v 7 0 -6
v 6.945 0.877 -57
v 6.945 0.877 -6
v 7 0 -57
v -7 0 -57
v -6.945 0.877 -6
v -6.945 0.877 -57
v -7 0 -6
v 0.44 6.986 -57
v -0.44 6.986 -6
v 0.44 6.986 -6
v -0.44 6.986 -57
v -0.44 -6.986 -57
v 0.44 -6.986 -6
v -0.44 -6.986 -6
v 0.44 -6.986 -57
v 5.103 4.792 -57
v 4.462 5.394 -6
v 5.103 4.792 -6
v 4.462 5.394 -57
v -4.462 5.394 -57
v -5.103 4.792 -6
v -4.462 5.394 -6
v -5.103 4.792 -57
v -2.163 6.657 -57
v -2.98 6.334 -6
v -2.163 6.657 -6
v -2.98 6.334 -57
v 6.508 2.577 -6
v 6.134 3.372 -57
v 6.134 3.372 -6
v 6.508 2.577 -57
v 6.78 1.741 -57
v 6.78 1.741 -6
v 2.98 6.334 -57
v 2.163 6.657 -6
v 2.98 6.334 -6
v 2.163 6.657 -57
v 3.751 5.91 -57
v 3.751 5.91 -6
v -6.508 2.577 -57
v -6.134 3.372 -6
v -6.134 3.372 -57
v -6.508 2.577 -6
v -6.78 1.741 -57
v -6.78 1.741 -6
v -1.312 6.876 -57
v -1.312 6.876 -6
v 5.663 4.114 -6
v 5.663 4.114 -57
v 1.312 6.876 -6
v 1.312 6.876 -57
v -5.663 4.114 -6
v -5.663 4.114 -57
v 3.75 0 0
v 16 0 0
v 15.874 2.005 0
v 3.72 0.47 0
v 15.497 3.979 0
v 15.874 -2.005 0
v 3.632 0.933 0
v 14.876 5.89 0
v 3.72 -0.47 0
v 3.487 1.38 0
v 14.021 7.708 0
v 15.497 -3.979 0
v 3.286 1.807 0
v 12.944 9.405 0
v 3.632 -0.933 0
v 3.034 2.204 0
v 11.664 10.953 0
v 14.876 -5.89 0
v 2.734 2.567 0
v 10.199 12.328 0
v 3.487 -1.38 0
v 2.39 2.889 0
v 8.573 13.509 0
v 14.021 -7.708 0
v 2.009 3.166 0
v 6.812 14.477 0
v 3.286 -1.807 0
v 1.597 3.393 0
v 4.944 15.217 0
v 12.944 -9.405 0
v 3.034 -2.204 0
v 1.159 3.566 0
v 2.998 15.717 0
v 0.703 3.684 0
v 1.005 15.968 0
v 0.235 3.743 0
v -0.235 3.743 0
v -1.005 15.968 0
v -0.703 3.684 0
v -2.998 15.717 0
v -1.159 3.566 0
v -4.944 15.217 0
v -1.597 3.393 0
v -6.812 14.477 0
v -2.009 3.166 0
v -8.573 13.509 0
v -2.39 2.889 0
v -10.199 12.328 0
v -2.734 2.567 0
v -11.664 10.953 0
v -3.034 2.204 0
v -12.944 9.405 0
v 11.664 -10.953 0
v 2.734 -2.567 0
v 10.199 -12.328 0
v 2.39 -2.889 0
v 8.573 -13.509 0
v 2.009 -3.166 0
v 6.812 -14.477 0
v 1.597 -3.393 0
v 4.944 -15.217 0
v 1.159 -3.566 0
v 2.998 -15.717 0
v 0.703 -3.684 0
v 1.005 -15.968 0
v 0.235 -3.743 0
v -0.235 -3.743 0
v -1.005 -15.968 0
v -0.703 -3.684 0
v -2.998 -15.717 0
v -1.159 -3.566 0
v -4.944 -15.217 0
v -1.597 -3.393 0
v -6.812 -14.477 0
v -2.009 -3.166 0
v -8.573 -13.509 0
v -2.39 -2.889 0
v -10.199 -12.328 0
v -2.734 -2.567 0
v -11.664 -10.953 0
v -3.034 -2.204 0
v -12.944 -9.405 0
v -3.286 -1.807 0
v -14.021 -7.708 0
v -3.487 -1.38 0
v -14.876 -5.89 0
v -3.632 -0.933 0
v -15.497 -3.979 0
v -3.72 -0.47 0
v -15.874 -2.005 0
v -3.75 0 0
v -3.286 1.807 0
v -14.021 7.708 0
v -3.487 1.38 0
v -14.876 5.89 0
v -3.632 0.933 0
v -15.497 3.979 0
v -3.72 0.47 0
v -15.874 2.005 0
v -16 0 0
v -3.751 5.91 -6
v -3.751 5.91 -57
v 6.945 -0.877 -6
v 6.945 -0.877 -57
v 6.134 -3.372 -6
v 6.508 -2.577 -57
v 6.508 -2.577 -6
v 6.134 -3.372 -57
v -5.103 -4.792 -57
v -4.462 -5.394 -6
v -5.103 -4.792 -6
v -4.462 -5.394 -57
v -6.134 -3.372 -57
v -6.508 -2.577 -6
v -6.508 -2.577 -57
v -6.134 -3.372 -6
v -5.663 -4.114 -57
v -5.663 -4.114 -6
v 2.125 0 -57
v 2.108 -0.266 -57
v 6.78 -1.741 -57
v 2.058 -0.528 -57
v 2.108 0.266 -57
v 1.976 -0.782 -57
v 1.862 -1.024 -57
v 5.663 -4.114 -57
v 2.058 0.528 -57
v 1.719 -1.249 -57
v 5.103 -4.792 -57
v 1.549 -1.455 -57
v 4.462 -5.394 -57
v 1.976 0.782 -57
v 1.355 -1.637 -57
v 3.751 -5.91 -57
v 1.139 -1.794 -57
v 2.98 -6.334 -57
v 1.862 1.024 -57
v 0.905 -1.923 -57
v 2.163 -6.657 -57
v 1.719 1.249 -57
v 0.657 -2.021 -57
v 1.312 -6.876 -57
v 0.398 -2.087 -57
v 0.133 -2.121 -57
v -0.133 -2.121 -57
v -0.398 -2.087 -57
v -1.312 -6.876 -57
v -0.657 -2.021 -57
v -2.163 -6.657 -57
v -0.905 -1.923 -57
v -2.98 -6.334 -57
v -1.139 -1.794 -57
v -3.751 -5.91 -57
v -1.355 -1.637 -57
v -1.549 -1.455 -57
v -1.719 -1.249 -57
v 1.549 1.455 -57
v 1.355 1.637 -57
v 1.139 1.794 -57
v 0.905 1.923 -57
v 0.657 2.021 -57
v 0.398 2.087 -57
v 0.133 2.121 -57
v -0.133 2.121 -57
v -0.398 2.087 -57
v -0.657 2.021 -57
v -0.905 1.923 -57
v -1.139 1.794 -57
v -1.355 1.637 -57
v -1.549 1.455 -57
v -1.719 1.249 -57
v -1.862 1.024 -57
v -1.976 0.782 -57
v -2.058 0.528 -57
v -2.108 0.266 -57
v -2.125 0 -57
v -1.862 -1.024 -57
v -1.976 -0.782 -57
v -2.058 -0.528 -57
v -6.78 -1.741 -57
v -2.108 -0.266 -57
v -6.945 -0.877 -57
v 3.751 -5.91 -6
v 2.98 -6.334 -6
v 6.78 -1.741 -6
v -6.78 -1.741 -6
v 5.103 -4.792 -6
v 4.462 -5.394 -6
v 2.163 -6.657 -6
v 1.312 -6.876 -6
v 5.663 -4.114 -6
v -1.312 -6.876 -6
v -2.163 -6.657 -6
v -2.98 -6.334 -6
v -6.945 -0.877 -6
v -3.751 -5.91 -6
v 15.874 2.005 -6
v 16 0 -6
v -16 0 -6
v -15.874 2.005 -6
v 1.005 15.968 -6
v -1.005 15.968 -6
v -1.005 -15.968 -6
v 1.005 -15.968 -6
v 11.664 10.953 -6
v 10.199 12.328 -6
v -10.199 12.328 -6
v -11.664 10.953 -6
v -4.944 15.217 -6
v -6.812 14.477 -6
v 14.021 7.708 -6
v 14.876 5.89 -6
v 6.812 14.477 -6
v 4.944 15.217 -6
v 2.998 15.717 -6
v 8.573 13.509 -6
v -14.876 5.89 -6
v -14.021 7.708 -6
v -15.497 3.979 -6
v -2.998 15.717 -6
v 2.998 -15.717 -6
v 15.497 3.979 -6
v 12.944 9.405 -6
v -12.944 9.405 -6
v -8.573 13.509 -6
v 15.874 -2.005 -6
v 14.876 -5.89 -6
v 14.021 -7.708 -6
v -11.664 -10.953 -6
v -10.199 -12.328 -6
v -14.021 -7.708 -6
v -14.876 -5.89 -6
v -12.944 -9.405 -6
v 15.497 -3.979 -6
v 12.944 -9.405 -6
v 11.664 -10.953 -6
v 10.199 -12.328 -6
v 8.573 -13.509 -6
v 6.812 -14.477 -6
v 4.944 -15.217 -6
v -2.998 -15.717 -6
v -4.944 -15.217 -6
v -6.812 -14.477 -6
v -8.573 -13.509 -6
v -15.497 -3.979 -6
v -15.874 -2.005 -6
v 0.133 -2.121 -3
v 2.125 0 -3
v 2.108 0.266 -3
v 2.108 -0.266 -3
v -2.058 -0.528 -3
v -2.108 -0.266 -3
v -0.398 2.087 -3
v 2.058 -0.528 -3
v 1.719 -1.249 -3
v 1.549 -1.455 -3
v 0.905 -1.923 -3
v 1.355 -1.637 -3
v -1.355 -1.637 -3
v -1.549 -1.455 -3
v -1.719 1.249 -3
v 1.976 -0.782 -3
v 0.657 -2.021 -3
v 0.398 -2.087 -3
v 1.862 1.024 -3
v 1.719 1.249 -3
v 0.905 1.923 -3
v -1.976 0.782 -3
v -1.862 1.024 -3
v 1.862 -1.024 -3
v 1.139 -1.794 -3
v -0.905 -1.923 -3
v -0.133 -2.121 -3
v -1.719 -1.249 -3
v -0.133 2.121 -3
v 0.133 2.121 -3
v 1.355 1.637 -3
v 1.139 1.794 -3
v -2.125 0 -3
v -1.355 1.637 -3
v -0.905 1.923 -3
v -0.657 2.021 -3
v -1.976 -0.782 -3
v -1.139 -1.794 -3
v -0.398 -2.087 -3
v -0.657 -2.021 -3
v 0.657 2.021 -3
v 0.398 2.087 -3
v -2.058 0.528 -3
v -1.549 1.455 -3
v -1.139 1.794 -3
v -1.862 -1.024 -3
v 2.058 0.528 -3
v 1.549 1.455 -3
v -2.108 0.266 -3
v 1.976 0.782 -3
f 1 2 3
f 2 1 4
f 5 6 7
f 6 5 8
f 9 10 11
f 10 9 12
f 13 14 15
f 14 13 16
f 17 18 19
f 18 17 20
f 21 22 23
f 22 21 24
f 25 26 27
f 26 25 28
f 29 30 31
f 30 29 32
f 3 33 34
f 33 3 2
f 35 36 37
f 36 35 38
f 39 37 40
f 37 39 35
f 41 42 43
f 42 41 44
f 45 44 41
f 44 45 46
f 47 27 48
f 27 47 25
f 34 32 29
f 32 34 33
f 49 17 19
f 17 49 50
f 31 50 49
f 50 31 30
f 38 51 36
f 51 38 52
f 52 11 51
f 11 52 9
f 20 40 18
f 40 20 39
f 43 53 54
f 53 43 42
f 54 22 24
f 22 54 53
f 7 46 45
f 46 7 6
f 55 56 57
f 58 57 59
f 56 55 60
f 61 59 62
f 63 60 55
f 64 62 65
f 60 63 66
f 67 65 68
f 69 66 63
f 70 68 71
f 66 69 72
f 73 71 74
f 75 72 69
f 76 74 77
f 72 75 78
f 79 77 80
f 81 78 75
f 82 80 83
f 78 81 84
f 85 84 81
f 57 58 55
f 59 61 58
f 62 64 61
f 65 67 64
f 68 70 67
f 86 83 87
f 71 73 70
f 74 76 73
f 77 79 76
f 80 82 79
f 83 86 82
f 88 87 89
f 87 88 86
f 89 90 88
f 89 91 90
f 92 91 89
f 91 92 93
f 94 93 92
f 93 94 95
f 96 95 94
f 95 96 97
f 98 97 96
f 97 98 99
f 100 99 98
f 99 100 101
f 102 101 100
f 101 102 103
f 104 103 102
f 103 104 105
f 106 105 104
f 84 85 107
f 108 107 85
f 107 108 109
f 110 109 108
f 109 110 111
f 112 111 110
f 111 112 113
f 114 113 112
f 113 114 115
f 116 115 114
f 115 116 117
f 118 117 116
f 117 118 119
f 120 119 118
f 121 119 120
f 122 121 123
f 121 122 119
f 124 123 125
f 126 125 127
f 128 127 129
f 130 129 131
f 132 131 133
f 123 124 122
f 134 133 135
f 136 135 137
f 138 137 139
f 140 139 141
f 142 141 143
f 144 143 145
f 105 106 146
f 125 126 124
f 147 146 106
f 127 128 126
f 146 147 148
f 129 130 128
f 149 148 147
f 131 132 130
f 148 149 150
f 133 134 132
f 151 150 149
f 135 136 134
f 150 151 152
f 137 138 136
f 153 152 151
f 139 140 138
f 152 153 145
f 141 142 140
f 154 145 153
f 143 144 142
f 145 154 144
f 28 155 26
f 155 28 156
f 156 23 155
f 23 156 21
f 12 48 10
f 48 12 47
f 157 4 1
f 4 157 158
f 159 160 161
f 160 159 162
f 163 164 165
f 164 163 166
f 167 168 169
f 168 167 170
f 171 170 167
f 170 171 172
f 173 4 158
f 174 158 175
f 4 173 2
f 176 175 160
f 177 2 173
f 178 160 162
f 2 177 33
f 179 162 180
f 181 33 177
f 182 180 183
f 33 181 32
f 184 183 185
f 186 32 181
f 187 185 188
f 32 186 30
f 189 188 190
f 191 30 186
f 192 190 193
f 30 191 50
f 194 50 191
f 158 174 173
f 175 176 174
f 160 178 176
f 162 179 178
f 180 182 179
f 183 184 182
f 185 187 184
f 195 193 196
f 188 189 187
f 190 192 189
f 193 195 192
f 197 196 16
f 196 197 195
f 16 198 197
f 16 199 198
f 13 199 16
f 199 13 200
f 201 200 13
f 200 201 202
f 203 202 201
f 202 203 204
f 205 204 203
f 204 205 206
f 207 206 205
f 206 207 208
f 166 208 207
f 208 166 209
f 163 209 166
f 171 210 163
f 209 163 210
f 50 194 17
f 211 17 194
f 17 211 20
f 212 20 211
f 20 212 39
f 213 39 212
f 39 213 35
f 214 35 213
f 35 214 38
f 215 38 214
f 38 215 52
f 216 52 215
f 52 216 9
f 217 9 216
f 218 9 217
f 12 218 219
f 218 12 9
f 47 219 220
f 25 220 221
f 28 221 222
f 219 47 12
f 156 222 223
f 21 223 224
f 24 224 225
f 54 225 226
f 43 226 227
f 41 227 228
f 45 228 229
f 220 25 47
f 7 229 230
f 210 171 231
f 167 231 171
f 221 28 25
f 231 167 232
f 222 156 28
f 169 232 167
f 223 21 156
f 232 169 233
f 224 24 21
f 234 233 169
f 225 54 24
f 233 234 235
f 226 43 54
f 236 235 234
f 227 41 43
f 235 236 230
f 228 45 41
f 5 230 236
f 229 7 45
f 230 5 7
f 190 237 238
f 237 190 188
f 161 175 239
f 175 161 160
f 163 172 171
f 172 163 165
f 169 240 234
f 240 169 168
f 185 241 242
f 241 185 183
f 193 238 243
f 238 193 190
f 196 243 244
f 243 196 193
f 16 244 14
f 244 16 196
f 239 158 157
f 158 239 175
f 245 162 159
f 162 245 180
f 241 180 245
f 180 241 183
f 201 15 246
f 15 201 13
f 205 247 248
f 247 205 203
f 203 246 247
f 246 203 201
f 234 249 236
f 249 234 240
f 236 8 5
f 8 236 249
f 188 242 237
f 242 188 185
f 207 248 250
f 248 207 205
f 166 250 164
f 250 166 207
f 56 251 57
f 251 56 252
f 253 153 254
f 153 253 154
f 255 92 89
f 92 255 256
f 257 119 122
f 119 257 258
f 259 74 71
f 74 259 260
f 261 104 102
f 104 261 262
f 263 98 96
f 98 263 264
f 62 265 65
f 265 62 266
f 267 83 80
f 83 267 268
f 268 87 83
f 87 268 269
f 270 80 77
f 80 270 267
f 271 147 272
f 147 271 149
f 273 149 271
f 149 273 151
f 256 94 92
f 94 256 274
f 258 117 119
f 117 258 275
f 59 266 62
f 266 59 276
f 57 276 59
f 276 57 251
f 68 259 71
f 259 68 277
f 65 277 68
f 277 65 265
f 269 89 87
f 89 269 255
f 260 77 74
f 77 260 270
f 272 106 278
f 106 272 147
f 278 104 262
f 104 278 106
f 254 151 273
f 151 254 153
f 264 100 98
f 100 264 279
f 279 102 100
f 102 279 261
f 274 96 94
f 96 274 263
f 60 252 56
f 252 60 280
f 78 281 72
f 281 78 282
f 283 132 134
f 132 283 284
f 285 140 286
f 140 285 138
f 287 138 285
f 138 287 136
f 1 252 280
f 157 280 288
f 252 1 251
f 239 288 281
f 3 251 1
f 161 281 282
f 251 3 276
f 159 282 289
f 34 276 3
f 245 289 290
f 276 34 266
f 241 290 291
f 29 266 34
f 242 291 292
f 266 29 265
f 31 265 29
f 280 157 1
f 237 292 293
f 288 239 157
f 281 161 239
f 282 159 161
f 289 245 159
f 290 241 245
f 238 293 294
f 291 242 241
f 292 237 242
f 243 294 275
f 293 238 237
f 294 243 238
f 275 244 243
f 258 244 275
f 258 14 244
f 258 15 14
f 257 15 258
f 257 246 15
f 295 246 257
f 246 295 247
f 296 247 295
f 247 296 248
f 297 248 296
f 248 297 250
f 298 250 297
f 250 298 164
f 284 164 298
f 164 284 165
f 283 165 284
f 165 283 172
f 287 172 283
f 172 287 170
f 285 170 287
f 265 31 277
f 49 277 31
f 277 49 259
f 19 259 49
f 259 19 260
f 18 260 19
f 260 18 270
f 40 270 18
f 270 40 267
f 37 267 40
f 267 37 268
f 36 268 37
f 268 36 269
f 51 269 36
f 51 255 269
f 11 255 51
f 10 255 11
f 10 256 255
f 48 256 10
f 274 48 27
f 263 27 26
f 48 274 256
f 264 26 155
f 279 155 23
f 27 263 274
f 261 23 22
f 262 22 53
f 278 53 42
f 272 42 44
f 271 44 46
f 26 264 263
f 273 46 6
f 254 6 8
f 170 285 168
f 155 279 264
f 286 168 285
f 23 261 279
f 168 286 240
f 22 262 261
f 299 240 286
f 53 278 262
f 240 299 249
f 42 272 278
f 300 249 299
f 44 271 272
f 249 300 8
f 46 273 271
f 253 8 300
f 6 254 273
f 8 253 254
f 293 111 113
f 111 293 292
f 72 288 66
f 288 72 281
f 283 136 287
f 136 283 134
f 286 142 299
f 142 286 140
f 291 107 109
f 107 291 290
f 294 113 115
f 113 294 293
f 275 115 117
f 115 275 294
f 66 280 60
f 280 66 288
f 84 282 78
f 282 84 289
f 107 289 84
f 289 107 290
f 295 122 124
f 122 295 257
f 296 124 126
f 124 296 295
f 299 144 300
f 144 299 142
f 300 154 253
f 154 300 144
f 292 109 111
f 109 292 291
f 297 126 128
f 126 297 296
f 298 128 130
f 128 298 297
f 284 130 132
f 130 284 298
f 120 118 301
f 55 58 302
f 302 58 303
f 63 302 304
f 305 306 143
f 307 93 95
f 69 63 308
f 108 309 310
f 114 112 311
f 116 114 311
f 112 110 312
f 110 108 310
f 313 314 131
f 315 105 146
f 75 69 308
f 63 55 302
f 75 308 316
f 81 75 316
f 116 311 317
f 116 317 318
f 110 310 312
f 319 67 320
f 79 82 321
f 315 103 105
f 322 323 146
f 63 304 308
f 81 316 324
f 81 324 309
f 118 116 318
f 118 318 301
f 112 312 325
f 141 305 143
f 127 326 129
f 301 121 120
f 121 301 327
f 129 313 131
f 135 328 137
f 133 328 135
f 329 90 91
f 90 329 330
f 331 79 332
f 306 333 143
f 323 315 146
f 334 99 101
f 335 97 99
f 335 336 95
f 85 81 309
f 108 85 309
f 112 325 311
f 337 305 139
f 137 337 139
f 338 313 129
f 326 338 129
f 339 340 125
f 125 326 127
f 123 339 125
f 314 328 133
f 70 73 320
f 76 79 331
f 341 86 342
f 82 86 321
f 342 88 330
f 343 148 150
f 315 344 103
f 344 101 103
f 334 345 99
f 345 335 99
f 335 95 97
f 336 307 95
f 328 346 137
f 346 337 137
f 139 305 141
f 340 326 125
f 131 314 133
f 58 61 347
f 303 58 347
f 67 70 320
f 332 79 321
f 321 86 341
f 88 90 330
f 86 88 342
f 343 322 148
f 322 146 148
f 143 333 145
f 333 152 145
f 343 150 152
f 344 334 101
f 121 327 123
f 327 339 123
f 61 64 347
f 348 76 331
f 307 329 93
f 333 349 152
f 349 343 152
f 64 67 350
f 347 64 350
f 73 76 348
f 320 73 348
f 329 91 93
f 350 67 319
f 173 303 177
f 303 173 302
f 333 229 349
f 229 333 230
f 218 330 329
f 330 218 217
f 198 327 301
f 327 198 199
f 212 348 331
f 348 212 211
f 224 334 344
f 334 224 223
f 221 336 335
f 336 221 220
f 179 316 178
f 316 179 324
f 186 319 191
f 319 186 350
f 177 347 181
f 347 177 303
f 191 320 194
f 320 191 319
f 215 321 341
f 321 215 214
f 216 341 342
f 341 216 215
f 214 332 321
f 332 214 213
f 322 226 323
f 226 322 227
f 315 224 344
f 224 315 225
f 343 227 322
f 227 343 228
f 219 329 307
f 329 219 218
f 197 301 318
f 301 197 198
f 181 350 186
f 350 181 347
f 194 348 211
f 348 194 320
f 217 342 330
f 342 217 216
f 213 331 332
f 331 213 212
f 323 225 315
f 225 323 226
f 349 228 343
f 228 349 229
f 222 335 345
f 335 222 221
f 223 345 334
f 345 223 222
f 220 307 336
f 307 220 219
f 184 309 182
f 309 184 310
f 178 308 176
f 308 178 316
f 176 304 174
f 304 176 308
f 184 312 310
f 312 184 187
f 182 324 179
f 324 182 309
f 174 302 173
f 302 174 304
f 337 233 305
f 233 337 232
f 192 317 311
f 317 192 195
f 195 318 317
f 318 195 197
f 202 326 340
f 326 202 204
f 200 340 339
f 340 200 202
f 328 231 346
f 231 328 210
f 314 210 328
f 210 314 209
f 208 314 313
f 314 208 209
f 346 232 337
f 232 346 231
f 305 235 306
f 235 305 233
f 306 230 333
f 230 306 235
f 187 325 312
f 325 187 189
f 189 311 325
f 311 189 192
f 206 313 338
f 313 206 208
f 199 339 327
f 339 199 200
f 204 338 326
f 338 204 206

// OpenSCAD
$fn = 50;


difference() {
	union() {
		translate(v = [0, 0, -57.0000000000]) {
			cylinder(h = 57, r = 7.0000000000);
		}
		translate(v = [0, 0, -6.0000000000]) {
			cylinder(h = 6, r = 16.0000000000);
		}
	}
	union() {
		translate(v = [0, 0, 0]) {
			rotate(a = [0, 0, 0]) {
				difference() {
					union() {
						#translate(v = [0, 0, -57.0000000000]) {
							cylinder(h = 57, r = 2.0000000000);
						}
						#translate(v = [0, 0, -3]) {
							cylinder(h = 3, r = 7.0000000000, r1 = 2.1250000000, r2 = 3.7500000000);
						}
						#translate(v = [0, 0, -57.0000000000]) {
							cylinder(h = 57, r = 2.1250000000);
						}
						#translate(v = [0, 0, -57.0000000000]) {
							cylinder(h = 57, r = 2.0000000000);
						}
					}
					union();
				}
			}
		}
	}
}
